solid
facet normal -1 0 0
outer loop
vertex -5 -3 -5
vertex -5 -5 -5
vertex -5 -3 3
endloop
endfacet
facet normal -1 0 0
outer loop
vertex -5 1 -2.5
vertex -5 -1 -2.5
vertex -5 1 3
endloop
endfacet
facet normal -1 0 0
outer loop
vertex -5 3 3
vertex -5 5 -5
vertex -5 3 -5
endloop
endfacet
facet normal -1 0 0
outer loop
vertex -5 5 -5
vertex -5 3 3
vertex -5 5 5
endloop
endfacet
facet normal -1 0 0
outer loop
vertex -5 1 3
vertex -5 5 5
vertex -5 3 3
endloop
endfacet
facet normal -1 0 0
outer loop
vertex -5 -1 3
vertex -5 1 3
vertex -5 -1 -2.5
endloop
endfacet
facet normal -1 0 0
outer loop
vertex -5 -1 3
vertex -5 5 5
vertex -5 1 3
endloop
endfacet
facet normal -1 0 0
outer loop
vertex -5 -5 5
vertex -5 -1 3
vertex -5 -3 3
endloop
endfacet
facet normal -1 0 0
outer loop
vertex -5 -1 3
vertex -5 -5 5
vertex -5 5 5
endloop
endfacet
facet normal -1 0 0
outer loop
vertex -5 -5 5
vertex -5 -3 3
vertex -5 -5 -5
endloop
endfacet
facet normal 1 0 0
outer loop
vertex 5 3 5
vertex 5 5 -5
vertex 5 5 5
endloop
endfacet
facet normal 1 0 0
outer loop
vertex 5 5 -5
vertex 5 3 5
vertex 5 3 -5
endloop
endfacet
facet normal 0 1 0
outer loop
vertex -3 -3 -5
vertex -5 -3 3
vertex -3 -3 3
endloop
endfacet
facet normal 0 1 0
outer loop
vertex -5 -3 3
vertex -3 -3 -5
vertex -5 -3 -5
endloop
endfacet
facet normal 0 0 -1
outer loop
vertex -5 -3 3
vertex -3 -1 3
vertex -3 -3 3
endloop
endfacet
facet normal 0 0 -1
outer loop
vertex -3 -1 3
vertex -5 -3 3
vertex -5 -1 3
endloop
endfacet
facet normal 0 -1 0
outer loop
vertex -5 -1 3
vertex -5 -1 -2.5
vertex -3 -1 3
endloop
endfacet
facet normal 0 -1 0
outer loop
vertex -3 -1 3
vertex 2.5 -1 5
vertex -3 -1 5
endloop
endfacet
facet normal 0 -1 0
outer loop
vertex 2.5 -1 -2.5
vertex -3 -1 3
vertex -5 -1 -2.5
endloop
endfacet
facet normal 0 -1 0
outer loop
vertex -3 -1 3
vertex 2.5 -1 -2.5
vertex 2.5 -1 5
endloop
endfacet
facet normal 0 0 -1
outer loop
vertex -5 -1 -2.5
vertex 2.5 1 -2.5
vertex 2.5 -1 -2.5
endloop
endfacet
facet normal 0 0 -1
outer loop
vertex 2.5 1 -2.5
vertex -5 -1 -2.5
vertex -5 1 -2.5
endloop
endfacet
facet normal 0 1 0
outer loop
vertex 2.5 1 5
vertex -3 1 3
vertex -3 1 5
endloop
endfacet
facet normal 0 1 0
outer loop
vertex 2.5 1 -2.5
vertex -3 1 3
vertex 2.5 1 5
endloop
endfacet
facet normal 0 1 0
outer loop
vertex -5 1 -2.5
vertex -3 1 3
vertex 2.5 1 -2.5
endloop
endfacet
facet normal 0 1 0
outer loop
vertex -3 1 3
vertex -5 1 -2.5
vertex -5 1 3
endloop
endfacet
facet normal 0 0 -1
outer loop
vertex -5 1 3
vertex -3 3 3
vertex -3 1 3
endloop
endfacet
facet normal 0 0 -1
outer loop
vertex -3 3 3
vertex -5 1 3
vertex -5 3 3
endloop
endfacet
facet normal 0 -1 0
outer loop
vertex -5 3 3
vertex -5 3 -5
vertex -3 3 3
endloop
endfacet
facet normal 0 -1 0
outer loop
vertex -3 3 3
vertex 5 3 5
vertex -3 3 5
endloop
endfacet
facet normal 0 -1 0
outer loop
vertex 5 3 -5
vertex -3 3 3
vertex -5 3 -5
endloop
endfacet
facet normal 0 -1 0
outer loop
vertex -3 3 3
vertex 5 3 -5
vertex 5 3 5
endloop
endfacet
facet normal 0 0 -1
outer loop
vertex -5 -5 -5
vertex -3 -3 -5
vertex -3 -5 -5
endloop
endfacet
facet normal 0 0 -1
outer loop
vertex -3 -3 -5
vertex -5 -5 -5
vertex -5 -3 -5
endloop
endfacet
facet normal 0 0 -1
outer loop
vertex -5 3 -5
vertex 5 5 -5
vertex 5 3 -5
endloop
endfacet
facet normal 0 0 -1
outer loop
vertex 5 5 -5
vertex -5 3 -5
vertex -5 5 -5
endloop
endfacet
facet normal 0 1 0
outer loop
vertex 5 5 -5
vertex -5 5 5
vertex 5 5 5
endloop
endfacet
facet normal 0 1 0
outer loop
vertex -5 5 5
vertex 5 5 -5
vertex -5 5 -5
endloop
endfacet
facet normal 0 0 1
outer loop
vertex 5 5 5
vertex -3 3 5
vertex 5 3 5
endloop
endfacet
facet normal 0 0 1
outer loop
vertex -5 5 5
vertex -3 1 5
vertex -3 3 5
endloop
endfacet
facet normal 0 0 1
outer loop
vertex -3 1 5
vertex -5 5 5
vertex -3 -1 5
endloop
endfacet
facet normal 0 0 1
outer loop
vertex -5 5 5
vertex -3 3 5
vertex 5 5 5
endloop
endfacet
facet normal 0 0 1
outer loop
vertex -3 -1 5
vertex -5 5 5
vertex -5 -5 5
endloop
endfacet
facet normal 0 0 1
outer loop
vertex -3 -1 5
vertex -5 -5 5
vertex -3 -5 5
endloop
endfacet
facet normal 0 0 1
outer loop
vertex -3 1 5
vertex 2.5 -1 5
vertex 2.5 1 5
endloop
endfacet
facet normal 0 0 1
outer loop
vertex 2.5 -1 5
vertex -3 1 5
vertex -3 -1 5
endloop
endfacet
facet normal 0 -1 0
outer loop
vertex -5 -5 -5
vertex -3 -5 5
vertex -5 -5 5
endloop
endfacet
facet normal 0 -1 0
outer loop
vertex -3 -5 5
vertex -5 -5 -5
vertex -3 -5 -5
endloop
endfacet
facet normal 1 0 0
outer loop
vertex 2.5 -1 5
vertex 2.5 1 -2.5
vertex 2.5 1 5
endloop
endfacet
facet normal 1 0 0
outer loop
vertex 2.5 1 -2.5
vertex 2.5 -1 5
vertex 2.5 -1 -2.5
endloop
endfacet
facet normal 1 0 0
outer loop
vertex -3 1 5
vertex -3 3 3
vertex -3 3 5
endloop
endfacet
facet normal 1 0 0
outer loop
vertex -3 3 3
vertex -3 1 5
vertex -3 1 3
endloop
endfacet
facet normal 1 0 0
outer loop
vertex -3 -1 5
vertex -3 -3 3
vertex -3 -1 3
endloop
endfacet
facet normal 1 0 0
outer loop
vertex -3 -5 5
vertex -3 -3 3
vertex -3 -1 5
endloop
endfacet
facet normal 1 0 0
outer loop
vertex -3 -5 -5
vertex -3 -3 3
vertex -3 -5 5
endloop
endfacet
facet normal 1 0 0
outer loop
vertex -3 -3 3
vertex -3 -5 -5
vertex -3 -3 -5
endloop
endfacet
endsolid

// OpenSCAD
// Generated by SolidPython 1.1.3 on 2025-02-20 03:37:06
$fn=50;


intersection() {
	rotate(a = 90, v = [0, 1, 0]) {
		translate(v = [-5.0000000000, -5.0000000000, -5.0000000000]) {
			linear_extrude(height = 10) {
				polygon(points = [[0, 0], [10, 0], [10, 2.0000000000], [2.0000000000, 2.0000000000], [2.0000000000, 4.0000000000], [7.5000000000, 4.0000000000], [7.5000000000, 6.0000000000], [2.0000000000, 6.0000000000], [2.0000000000, 8.0000000000], [10, 8.0000000000], [10, 10], [0, 10]]);
			}
		}
	}
	translate(v = [-5.0000000000, -5.0000000000, -5.0000000000]) {
		linear_extrude(height = 10) {
			polygon(points = [[0, 0], [2.0000000000, 0], [2.0000000000, 4.0000000000], [7.5000000000, 4.0000000000], [7.5000000000, 6.0000000000], [2.0000000000, 6.0000000000], [2.0000000000, 8.0000000000], [10, 8.0000000000], [10, 10], [0, 10]]);
		}
	}
}
/***********************************************
*********      SolidPython code:      **********
************************************************
 
from solid import *
from solid.utils import *

import math
import matplotlib.pyplot as plt
import subprocess
import os

class Hole:
    def __init__(self, x, y, radius):
        """
        Hole defined by:
        :param x: x dimension for center point of the circle as a ratio of letter height
        :param y: y dimension for center point of the circle as a ratio of letter height
        :param radius: radius of circle as a ratio of letter height
        """
        self.x = x
        self.y = y
        self.radius = radius

class Letter3D:
    def __init__(self, name, outer_shape_points, height, holes=None):
        """
        3D Letter defined by:
        :param name: name of letter
        :param outer_shape_points: points defining the outer shape of the letter
        :param heigh: size of cube that letter fits inside
        :param holes: list of Holes
        """
        self.name = name
        self.outer_shape_points = outer_shape_points
        self.holes = holes if holes is None else []
        self.height = height
        self.shape = self.generate()


    def generate(self):
        shape = polygon(points=self.outer_shape_points)

        if self.holes:
            for hole in self.holes:
                circle_hole = circle(r=hole.radius*self.height)
                positioned_hole = translate([hole.x*self.height, hole.y*self.height])(circle_hole)
                shape = difference()(shape, positioned_hole)
        
        shape_3d = linear_extrude(height=self.height)(shape)
        shape_3d = translate([-self.height/2, -self.height/2, -self.height/2])(shape_3d)
        return shape_3d
    
    def render(self):
        scad_render_to_file(self.shape, f"output/{self.name}.scad", file_header='$fn=50;')
        subprocess.run(["C:\\Program Files\\OpenSCAD\\openscad.exe", "-o", f"output\\{self.name}.stl", f"output\\{self.name}.scad"])


class TwoLetter3D:
    def __init__(self, height, letterA, letterB, letterA_face, letterB_face):
        self.height = height
        self.letterA = letterA
        self.letterB = letterB
        self.letterA_face = letterA_face
        self.letterB_face = letterB_face

    def call_letter_generation(self, letter):
        letter = letter.upper()
        function_name = f"letter_{letter}"
        func = globals().get(function_name)
        if func is None:
            raise ValueError(f"No letter generation function defined for letter '{letter}'.")
        else:
            print(func)
        return func(self.height)
    
    def rotate_object(self, face, shape):
        face = face.lower()
        if face == "z":
            return shape
        if face == "x":
            return rotate(a=90, v=[0,1,0])(shape)
        if face == "y":
            return rotate(a=-90, v=[1,0,0])(shape)
        else:
            raise ValueError("Face must be one of 'x', 'y', or 'z'.")

    def render(self):
        letterA3D = self.call_letter_generation(self.letterA)
        letterA3D = self.rotate_object(self.letterA_face, letterA3D)

        letterB3D = self.call_letter_generation(self.letterB)
        # letterB3D = self.rotate_object(self.letterB_face, letterB3D)

        combined = intersection()(letterA3D, letterB3D)
        file_name = self.letterA + self.letterB
        scad_render_to_file(combined, f"output/{file_name}.scad", file_header='$fn=50;')
        subprocess.run(["C:\\Program Files\\OpenSCAD\\openscad.exe", "-o", f"output\\{file_name}.stl", f"output\\{file_name}.scad"])
    
                

def arc_points(radius, start_angle, end_angle, center=[0,0], num_points=50):
    angles = [start_angle + i * (end_angle - start_angle) / (num_points - 1)
              for i in range(num_points)]
    points = [
        (center[0] + radius * math.cos(math.radians(angle)),
         center[1] + radius * math.sin(math.radians(angle)))
        for angle in angles
    ]
    return points

def letter_A(h):
    shape_points = [(0,0), (h/2, h), (h, 0), (5/6*h, 0), (2/3*h, 1/3*h), (1/3*h, 1/3*h), (h/6, 0)]
    holes = [Hole(1/2, 7/12, 1/6)]
    A = Letter3D("A", shape_points, h, holes)
    return A.generate()


def letter_B(h):
    top_arc_points = arc_points(h/4, 90, -90, center=[3/4*h, 3/4*h])
    bottom_arc_points = arc_points(h/4, 90, -90, center=[3/4*h, h/4])
    other_points = [(0,0),(0,h)]

    shape_points = top_arc_points + bottom_arc_points + other_points
    holes = [Hole(1/2, 3/4, 1/6), Hole(1/2, 1/4, 1/6)]
    B = Letter3D("B", shape_points, h, holes)
    return B.generate()

def letter_C(h):
    outer_arc_points = arc_points(h/2, 30, 330, center=[h/2, h/2])
    inner_arc_points = arc_points(h/4, 30, 330, center=[h/2, h/2])[::-1]
    shape_points = outer_arc_points + inner_arc_points
    C = Letter3D("C", shape_points, h)
    return C.generate()


def letter_D(h):
    outer_arc_points = arc_points(h/2, 90, -90, center= [h/2, h/2])
    shape_points = outer_arc_points + [(0,0), (0, h)]
    holes = [Hole(1/2, 1/2, 1/6)]
    D = Letter3D("D", shape_points, h, holes)
    return D.generate()

def letter_E(h):
    points = [(0,0), (h,0), (h,h/5), (h/5,h/5), (h/5,2/5*h), (3/4*h,2/5*h), (3/4*h,3/5*h), (h/5,3/5*h), (h/5,4/5*h), (h,4/5*h), (h,h), (0,h)]
    E = Letter3D("E", points, h)
    return E.generate()

def letter_F(h):
    points = [(0,0), (h/5,0), (h/5,2/5*h), (3/4*h,2/5*h), (3/4*h,3/5*h), (h/5,3/5*h), (h/5,4/5*h), (h,4/5*h), (h,h), (0,h)]
    F = Letter3D("F", points, h)
    return F.generate()

if __name__ == "__main__":
    os.makedirs("output", exist_ok=True)

    # Just the letter B
    # letter_E(10)
    # letter_F(10)

    shape = TwoLetter3D(10, "E", "F", "x", "y")
    shape.render()
 
 
************************************************/
